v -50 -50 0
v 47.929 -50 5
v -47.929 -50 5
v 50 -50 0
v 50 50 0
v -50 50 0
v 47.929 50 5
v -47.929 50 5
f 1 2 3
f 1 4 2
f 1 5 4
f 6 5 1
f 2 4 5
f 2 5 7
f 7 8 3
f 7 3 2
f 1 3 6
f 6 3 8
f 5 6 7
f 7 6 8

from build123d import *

# Parameters (mm, degrees)
SKETCH_W        = 100
SKETCH_H        = 100
PAD_DEPTH       = 5
POCKET_DEPTH    = 100
POCKET001_DEPTH = 100


with BuildPart() as part:
    # Sketch → Pad (new body)
    with BuildSketch(Plane.XY):
        Rectangle(SKETCH_W, SKETCH_H)
    extrude(amount=PAD_DEPTH)

    # Sketch001 (on Face1 of Pad) → Pocket (cut)
    with BuildSketch(Plane.XZ.offset(50)):
        Polygon((-50, 0), (-47.928932, 5), (-50, 5), align=None)
    extrude(amount=-POCKET_DEPTH, mode=Mode.SUBTRACT)

    # Sketch002 (on Face1 of Pocket) → Pocket001 (cut)
    with BuildSketch(Plane.XZ.offset(50)):
        Polygon((50, 0), (47.928932, 5), (50, 5), align=None)
    extrude(amount=-POCKET001_DEPTH, mode=Mode.SUBTRACT)


solid = part.part
